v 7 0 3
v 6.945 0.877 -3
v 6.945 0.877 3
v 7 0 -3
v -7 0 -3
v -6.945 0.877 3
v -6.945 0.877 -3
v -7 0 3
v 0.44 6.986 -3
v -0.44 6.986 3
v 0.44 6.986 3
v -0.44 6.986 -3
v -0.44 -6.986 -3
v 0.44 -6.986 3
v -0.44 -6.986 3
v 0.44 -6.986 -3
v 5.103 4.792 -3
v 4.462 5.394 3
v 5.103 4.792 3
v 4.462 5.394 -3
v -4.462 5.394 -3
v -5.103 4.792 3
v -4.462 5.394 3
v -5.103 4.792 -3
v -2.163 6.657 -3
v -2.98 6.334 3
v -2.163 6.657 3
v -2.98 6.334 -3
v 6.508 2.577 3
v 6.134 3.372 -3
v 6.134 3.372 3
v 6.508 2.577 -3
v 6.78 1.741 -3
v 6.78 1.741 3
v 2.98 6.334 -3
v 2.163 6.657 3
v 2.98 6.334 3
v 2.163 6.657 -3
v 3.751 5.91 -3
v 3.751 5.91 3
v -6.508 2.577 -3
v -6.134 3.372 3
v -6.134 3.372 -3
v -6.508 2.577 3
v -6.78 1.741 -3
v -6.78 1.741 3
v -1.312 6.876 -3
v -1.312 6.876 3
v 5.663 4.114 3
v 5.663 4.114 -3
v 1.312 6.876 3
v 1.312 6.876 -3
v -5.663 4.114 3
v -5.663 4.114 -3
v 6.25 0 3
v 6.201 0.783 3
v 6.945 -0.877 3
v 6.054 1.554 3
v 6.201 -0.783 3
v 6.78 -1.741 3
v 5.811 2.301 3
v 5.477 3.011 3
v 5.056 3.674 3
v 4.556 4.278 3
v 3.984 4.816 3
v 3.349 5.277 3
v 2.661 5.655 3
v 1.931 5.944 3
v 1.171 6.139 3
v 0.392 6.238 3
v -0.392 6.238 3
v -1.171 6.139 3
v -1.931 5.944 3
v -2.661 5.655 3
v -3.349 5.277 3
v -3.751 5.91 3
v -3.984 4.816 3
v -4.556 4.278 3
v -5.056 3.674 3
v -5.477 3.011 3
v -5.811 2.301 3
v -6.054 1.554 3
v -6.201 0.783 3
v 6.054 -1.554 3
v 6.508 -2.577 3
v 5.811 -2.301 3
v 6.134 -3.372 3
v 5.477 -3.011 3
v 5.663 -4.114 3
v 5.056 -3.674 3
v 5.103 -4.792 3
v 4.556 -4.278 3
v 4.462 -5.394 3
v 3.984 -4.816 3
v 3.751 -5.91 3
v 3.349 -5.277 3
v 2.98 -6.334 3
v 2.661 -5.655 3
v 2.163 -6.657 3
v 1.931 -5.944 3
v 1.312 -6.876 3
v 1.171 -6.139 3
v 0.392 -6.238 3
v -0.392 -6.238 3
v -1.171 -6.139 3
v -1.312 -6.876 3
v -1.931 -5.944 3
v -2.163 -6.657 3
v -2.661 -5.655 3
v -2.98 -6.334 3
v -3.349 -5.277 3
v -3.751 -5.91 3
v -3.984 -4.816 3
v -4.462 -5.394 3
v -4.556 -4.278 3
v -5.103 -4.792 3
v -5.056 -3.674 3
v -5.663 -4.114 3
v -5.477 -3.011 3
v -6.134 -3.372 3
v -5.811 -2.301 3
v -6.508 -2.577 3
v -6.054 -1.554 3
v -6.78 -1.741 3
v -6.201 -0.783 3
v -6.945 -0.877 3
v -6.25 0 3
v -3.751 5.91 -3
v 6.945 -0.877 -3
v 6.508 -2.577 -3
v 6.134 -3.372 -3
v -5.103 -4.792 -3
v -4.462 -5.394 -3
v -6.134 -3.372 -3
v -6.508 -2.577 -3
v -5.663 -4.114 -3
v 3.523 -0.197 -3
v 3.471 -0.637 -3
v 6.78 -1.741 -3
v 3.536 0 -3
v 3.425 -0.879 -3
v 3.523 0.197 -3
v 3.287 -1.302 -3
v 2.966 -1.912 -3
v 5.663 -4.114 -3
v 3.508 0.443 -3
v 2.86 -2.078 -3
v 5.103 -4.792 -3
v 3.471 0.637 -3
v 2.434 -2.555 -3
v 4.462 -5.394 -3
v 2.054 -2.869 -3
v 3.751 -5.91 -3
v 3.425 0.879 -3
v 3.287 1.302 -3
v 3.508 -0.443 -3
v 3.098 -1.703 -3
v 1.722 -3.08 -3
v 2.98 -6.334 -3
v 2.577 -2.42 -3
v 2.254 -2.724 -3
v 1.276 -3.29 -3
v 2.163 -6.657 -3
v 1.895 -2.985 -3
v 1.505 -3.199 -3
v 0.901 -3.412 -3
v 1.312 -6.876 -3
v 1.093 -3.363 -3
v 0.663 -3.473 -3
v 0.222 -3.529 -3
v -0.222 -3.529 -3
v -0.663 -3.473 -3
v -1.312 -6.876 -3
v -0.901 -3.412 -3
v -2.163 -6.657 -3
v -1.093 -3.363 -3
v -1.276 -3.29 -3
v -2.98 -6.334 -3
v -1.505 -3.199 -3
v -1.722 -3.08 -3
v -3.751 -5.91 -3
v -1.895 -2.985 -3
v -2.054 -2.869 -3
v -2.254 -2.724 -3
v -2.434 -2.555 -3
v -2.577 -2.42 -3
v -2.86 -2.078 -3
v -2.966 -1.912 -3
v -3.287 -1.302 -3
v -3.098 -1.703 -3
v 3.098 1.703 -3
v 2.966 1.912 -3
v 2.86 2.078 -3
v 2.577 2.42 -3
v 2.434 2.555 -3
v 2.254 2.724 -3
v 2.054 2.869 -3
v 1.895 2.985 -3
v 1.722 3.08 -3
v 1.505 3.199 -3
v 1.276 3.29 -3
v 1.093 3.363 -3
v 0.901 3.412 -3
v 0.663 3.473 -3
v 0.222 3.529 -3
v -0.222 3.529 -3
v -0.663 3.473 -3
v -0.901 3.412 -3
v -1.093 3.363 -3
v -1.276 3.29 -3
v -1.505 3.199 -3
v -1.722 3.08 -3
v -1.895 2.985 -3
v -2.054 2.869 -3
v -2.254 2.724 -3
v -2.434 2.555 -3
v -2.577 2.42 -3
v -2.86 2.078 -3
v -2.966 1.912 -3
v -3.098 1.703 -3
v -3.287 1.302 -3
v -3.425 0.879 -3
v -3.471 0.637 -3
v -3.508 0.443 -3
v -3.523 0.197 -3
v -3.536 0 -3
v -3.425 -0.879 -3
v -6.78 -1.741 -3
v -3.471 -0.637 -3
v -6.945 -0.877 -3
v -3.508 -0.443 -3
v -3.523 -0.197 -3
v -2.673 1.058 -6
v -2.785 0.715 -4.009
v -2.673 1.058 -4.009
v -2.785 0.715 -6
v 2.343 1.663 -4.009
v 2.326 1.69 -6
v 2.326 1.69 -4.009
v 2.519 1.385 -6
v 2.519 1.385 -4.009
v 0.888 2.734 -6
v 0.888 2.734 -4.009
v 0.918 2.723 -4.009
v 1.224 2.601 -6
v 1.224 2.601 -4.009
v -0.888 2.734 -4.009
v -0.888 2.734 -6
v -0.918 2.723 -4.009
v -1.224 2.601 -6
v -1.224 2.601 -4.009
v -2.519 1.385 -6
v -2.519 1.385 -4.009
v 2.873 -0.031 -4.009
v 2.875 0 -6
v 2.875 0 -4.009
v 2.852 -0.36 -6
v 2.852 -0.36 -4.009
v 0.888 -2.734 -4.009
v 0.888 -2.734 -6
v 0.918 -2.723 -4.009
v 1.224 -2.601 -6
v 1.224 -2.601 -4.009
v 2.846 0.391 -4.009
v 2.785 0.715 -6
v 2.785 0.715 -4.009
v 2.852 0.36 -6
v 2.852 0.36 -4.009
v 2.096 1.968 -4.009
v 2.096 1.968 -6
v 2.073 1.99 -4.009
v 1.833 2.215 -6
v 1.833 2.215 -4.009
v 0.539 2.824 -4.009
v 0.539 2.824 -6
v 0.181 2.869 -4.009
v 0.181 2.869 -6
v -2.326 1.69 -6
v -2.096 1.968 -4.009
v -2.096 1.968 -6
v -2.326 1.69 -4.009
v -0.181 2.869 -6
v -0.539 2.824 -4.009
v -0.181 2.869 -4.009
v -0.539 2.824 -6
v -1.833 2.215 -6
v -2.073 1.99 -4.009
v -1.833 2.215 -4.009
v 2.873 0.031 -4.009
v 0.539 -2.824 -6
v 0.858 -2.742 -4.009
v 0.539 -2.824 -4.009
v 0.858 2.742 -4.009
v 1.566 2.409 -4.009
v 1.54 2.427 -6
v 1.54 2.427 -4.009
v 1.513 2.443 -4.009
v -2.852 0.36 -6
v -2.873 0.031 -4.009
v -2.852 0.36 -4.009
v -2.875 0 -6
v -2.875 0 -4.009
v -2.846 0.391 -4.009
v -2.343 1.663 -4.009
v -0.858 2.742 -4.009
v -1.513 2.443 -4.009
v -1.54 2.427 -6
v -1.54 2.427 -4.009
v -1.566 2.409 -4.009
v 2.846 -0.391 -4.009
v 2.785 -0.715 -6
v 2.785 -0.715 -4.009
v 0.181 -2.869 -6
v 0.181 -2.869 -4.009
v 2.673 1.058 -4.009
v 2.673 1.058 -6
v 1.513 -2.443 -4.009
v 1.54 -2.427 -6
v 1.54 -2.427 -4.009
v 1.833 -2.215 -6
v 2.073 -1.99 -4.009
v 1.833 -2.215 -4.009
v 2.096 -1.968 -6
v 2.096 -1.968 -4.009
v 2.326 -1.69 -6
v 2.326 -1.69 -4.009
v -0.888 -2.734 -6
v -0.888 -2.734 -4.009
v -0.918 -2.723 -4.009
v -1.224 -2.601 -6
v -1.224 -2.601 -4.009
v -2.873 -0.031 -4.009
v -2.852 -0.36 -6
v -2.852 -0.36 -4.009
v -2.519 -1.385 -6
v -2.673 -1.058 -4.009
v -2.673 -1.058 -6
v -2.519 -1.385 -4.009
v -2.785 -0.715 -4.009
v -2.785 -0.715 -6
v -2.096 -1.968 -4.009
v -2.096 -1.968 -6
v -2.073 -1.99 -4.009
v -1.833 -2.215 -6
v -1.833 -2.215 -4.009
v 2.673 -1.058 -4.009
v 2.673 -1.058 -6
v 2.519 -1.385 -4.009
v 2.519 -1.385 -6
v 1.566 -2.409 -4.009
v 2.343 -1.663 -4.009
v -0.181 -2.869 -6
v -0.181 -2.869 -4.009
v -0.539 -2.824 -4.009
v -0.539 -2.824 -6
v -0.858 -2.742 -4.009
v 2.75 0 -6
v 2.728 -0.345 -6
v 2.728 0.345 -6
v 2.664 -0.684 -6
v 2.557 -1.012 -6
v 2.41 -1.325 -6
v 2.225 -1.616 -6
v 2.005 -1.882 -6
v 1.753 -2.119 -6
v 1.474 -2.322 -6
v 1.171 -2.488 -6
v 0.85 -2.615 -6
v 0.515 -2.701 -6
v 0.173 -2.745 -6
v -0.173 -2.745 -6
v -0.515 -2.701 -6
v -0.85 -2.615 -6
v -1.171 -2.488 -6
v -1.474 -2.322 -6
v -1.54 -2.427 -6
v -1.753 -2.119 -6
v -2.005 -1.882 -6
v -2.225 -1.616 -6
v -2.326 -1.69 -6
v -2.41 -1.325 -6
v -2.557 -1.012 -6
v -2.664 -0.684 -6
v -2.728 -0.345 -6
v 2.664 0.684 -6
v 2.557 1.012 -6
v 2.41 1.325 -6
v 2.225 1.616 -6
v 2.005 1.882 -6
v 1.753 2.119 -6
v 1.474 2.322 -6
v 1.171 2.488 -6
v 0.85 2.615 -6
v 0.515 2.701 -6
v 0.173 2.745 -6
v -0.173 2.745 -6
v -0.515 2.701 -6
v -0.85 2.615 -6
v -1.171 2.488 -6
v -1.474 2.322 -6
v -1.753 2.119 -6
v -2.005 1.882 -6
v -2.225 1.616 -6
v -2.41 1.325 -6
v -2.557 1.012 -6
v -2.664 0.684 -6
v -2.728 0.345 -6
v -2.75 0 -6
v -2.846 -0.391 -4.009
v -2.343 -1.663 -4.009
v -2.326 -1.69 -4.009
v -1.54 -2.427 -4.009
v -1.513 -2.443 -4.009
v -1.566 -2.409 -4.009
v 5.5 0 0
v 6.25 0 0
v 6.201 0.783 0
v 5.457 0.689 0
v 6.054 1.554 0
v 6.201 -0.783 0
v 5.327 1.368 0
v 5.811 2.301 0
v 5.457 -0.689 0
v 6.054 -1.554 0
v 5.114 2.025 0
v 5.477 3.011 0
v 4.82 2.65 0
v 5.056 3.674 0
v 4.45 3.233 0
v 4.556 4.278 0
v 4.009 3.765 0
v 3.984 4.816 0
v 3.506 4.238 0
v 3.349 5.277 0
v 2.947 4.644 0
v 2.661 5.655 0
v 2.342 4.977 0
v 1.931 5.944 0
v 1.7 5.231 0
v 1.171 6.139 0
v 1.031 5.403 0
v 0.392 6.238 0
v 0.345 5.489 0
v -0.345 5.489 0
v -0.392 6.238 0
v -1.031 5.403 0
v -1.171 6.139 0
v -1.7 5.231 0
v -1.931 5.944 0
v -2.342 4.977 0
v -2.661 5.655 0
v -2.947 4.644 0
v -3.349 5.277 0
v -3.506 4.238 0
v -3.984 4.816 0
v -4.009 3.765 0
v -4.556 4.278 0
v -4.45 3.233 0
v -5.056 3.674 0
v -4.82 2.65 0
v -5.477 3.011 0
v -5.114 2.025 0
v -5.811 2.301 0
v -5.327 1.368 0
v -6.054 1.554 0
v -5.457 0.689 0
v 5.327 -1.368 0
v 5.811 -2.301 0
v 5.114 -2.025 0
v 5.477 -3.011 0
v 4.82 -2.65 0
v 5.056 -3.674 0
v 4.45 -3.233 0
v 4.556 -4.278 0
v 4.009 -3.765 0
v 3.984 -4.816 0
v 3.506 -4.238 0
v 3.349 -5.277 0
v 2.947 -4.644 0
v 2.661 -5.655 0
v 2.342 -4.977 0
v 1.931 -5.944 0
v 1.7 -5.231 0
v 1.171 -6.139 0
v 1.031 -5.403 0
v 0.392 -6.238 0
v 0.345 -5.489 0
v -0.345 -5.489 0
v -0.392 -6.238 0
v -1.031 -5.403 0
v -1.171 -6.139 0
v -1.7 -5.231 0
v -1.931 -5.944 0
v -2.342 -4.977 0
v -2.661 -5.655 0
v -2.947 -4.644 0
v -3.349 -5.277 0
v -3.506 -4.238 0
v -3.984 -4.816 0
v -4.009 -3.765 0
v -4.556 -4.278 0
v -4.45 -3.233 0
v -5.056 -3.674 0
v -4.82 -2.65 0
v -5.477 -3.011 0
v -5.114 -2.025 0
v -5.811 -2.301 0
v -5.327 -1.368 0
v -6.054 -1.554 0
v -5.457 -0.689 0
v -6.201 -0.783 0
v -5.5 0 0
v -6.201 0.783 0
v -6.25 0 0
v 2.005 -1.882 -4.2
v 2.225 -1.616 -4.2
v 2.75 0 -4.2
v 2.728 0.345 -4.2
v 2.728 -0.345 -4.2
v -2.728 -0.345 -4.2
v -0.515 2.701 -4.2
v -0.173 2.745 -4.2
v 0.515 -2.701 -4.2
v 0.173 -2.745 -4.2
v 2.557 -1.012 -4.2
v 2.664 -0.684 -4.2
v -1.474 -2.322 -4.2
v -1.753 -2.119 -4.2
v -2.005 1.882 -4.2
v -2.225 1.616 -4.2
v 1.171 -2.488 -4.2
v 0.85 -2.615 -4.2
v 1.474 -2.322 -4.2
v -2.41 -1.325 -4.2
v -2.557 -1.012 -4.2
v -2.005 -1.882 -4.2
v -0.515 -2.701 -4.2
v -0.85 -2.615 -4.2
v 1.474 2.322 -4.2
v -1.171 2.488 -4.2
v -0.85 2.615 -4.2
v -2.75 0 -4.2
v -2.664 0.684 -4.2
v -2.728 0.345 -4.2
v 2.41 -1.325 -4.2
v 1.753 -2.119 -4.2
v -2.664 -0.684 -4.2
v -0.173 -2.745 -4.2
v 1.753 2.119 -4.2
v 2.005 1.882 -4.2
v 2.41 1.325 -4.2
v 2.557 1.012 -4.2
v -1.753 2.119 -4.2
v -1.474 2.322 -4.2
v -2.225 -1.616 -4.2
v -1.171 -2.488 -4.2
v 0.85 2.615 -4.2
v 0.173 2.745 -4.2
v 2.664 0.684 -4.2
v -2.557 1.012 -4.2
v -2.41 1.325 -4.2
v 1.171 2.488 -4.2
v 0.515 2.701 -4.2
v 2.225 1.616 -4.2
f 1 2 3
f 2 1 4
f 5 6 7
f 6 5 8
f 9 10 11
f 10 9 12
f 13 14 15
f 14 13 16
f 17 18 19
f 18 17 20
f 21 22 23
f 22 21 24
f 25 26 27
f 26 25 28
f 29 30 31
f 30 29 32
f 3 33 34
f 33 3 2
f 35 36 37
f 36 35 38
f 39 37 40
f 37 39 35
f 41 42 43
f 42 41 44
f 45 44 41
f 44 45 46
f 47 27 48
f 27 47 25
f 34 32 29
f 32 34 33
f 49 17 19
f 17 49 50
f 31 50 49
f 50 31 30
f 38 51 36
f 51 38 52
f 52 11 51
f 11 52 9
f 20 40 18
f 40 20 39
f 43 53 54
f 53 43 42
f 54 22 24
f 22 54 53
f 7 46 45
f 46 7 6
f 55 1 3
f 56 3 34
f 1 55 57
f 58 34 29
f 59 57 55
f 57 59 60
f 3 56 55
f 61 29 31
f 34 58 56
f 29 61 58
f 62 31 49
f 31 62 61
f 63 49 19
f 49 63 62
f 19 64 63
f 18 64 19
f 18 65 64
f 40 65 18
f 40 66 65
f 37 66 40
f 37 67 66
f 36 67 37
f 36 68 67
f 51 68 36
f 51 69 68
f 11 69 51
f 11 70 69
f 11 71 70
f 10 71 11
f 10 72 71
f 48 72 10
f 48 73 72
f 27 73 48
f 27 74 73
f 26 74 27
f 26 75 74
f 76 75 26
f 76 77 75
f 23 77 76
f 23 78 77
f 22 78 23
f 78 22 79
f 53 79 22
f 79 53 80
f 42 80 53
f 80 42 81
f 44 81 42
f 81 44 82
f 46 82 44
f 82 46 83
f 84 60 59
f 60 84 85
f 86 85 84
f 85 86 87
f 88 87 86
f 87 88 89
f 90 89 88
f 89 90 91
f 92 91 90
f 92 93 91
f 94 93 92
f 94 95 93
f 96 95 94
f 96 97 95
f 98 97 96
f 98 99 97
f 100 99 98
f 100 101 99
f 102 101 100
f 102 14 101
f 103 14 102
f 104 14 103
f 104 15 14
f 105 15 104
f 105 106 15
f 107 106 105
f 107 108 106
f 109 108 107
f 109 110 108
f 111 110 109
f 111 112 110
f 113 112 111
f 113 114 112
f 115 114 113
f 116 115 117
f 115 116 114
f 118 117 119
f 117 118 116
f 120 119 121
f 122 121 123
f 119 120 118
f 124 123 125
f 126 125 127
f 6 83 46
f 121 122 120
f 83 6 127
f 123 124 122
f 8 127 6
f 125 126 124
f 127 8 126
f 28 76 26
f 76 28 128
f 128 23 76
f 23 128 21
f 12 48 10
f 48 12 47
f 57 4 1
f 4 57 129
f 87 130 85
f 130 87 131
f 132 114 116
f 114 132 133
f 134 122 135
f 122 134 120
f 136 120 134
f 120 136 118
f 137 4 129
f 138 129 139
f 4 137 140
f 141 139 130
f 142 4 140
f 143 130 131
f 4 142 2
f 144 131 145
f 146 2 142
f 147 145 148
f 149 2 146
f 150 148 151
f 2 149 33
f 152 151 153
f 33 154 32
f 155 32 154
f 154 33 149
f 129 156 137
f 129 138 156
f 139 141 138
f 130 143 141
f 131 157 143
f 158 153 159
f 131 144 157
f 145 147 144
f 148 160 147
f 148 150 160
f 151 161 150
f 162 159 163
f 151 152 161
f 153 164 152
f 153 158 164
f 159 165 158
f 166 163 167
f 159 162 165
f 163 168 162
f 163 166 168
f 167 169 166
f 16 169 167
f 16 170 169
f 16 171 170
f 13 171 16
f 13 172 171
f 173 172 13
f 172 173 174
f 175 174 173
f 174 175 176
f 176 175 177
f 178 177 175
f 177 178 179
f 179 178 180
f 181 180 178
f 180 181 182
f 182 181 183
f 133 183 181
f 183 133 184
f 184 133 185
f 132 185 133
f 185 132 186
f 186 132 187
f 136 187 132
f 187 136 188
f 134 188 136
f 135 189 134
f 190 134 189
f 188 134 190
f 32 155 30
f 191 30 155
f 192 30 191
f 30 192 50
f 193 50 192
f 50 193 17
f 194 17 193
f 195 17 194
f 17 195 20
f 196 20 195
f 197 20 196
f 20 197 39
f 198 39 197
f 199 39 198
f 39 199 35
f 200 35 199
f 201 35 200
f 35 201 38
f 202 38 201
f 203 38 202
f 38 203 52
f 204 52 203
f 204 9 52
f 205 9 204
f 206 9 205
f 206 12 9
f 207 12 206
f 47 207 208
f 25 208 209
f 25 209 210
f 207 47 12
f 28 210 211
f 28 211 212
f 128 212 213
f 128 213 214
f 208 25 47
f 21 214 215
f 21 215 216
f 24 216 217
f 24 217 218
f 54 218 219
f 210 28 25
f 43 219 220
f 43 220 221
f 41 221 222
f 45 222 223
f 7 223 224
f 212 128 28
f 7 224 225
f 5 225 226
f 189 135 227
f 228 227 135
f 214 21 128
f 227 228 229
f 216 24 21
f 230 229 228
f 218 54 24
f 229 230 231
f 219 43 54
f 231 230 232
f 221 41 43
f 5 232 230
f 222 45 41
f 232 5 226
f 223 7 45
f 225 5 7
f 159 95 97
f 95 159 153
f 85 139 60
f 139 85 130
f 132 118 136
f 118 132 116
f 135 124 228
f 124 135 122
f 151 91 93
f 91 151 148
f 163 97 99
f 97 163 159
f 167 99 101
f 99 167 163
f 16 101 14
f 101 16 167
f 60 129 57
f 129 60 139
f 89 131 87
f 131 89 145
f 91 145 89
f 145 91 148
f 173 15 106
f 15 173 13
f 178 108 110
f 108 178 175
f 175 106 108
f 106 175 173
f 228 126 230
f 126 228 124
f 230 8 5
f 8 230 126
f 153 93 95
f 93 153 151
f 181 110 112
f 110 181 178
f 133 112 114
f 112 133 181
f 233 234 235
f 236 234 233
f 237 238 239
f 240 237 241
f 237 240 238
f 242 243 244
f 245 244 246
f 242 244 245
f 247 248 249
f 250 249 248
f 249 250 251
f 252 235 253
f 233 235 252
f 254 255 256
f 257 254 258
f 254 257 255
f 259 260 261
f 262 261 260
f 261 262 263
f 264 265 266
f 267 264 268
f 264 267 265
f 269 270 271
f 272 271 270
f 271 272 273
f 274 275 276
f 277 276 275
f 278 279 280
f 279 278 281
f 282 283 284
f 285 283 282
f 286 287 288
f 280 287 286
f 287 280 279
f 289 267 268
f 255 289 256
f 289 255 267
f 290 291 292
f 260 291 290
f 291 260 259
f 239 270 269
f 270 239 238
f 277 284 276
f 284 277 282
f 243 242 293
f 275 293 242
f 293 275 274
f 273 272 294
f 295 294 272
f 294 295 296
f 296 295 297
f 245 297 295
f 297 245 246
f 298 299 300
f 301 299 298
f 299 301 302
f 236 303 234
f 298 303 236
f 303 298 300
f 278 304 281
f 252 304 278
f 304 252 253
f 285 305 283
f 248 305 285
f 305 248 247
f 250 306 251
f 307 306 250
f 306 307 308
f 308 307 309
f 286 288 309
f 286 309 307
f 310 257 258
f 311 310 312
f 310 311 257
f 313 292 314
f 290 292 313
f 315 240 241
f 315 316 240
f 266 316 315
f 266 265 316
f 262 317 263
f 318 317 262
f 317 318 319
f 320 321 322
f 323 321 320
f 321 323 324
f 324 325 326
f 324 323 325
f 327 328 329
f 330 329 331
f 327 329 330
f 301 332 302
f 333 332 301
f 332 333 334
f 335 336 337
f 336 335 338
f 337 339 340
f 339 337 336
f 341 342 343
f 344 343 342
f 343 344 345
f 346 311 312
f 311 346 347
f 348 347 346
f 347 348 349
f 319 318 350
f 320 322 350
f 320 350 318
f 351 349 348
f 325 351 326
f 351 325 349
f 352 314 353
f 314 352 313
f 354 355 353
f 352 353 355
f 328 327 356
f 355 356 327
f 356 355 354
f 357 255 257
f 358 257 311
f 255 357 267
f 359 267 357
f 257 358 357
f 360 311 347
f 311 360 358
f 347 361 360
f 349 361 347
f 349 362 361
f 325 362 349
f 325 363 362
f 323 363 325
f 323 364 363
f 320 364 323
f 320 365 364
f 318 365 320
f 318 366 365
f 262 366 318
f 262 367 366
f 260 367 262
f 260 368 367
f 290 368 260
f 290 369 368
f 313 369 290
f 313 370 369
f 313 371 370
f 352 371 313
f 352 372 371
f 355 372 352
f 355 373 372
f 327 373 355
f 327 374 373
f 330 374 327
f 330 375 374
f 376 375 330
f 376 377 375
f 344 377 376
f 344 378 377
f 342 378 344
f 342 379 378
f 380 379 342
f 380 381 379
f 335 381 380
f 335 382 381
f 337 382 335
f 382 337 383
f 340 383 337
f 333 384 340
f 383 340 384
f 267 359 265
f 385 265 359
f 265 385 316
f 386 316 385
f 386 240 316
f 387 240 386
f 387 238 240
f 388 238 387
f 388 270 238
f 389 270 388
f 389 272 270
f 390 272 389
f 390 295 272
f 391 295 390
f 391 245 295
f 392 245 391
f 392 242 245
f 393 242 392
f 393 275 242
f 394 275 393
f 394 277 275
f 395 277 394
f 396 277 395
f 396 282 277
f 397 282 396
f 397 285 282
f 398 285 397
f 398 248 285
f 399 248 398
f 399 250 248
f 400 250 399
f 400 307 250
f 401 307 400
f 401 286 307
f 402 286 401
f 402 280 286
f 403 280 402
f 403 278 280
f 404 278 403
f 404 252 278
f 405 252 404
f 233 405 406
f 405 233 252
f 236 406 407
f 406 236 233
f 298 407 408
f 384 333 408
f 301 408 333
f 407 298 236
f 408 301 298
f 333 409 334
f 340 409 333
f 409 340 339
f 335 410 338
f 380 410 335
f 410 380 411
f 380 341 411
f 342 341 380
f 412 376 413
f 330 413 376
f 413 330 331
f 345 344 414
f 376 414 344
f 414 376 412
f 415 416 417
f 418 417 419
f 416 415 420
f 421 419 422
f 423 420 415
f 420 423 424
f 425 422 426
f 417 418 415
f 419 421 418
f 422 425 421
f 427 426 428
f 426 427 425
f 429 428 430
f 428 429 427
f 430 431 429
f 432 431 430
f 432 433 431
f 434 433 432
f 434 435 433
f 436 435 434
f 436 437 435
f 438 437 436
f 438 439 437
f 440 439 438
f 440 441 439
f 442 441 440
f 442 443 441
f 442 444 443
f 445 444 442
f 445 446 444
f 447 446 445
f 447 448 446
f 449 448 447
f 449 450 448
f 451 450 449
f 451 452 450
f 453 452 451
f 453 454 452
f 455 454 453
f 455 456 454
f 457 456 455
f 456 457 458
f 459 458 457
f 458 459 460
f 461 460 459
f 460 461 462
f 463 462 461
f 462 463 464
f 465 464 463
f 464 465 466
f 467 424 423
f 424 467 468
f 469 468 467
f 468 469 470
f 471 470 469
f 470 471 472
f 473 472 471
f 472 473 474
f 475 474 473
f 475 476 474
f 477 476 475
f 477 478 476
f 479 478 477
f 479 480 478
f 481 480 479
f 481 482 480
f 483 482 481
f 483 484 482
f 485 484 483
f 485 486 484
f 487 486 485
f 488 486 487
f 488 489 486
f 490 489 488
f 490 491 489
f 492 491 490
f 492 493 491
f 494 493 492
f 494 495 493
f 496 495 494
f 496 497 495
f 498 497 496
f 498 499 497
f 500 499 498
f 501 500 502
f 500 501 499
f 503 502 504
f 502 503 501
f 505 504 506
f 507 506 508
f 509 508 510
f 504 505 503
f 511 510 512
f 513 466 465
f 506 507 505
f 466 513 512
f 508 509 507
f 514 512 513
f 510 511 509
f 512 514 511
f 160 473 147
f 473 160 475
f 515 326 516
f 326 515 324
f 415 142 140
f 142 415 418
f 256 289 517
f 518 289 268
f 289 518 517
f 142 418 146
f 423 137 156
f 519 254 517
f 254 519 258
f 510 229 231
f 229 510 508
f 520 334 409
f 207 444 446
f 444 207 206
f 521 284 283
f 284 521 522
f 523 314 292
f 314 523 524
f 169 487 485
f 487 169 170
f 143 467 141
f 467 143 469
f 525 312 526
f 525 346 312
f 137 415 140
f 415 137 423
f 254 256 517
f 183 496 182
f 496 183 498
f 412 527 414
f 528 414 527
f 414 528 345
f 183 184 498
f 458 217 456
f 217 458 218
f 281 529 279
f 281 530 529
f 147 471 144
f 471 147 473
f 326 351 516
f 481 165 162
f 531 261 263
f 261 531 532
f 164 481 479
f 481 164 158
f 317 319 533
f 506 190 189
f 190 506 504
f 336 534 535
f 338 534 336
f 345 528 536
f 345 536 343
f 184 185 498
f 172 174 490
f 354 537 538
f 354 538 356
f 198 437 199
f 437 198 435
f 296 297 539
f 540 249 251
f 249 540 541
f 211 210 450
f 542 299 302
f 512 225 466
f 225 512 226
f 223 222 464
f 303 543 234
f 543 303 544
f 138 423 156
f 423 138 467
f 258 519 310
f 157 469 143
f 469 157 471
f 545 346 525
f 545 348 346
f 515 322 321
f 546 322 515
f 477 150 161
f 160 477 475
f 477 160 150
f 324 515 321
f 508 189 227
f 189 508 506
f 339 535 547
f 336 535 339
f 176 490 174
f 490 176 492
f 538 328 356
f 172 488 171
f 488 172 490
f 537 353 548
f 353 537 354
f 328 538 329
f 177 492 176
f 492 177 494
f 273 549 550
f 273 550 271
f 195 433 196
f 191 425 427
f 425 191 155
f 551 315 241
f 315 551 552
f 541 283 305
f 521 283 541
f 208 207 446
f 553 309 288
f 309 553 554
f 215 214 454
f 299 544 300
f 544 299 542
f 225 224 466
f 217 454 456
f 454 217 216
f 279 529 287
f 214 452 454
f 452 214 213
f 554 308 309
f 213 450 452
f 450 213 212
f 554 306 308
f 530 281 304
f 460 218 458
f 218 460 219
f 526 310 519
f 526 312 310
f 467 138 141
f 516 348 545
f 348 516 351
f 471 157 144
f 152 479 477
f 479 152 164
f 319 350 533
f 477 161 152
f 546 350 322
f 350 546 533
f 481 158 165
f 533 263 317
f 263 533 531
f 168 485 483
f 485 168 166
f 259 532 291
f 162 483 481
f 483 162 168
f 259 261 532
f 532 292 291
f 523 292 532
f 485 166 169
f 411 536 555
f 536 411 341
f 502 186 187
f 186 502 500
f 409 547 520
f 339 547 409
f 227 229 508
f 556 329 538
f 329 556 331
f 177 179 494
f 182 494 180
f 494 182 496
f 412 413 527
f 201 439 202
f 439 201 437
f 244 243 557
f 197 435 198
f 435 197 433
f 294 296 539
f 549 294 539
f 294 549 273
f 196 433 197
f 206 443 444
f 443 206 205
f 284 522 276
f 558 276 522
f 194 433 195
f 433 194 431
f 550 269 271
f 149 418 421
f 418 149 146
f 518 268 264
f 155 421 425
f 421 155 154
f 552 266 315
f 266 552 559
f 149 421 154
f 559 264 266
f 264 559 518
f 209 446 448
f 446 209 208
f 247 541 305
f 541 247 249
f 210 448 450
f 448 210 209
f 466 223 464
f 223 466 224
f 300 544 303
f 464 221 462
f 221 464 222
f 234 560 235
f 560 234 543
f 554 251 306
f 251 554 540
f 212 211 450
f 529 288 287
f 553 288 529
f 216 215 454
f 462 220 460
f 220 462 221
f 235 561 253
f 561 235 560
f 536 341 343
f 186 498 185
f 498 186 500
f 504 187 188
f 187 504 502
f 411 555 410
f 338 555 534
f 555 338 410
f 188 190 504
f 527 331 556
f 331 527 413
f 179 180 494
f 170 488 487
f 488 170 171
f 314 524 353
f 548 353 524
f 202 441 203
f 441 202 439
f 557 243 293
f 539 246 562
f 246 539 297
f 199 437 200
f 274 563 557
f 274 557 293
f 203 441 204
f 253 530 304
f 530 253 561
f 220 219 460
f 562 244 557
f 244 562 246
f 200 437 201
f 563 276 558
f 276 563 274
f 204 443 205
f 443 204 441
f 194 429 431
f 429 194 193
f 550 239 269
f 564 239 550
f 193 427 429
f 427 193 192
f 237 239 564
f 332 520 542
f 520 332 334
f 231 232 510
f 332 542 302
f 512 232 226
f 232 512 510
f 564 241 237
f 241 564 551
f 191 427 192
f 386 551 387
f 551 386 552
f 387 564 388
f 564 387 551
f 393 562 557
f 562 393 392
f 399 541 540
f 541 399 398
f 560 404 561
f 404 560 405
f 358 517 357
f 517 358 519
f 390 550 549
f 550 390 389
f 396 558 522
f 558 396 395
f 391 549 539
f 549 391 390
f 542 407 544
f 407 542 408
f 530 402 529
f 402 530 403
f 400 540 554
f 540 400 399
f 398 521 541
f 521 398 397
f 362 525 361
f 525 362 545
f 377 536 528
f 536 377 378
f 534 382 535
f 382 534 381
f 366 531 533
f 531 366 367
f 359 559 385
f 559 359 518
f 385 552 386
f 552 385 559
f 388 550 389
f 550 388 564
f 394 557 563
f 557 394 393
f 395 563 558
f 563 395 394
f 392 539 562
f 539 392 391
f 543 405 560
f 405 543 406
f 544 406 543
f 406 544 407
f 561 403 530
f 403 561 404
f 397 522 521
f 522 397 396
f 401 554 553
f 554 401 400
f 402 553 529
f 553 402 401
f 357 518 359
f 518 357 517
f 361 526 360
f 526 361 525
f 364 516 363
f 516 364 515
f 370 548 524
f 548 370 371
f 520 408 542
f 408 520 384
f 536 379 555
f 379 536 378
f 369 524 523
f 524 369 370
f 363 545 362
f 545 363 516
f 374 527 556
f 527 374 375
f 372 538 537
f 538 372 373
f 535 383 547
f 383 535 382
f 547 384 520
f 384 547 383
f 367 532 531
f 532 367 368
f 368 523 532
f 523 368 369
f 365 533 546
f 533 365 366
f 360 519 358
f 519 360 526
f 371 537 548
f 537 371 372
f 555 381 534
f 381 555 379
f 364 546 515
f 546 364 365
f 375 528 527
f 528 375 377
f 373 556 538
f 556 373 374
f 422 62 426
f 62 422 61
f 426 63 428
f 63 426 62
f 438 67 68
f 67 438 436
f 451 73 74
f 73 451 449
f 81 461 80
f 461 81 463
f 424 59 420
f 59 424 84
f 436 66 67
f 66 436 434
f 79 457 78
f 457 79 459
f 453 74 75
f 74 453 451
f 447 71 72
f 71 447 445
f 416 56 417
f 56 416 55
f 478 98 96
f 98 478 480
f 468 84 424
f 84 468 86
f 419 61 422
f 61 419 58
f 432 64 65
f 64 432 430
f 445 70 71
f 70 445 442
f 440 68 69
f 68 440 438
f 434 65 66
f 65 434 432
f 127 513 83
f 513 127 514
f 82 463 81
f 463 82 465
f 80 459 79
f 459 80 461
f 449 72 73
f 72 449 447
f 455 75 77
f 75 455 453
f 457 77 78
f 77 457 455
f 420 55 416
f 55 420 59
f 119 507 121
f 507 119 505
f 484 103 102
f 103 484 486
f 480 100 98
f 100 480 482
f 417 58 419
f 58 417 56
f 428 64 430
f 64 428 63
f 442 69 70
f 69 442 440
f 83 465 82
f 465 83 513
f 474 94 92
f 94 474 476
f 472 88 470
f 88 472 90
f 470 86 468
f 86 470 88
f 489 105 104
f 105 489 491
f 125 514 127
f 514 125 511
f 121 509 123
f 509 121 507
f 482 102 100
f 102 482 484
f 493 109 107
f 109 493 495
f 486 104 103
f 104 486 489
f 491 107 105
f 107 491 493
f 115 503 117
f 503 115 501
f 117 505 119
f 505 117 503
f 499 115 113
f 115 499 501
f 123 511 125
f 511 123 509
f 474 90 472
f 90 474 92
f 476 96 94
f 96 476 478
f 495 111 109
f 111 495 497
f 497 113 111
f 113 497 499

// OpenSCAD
$fn = 50;


difference() {
	union() {
		translate(v = [0, 0, -3.0000000000]) {
			cylinder(h = 6, r = 7.0000000000);
		}
		#translate(v = [0, 0, -6.0000000000]) {
			cylinder(h = 6, r = 2.8750000000);
		}
	}
	union() {
		translate(v = [0, 0, 0]) {
			rotate(a = [0, 0, 0]) {
				difference() {
					union() {
						translate(v = [0, 0, -6.0000000000]) {
							cylinder(h = 6, r = 2.2500000000);
						}
						translate(v = [0, 0, -4.2000000000]) {
							cylinder(h = 4.2000000000, r1 = 2.7500000000, r2 = 5.5000000000);
						}
						translate(v = [0, 0, -6.0000000000]) {
							cylinder(h = 6, r = 2.7500000000);
						}
						translate(v = [0, 0, -6.0000000000]) {
							cylinder(h = 6, r = 2.2500000000);
						}
					}
					union();
				}
			}
		}
		#cylinder(h = 3, r = 6.2500000000);
	}
}
